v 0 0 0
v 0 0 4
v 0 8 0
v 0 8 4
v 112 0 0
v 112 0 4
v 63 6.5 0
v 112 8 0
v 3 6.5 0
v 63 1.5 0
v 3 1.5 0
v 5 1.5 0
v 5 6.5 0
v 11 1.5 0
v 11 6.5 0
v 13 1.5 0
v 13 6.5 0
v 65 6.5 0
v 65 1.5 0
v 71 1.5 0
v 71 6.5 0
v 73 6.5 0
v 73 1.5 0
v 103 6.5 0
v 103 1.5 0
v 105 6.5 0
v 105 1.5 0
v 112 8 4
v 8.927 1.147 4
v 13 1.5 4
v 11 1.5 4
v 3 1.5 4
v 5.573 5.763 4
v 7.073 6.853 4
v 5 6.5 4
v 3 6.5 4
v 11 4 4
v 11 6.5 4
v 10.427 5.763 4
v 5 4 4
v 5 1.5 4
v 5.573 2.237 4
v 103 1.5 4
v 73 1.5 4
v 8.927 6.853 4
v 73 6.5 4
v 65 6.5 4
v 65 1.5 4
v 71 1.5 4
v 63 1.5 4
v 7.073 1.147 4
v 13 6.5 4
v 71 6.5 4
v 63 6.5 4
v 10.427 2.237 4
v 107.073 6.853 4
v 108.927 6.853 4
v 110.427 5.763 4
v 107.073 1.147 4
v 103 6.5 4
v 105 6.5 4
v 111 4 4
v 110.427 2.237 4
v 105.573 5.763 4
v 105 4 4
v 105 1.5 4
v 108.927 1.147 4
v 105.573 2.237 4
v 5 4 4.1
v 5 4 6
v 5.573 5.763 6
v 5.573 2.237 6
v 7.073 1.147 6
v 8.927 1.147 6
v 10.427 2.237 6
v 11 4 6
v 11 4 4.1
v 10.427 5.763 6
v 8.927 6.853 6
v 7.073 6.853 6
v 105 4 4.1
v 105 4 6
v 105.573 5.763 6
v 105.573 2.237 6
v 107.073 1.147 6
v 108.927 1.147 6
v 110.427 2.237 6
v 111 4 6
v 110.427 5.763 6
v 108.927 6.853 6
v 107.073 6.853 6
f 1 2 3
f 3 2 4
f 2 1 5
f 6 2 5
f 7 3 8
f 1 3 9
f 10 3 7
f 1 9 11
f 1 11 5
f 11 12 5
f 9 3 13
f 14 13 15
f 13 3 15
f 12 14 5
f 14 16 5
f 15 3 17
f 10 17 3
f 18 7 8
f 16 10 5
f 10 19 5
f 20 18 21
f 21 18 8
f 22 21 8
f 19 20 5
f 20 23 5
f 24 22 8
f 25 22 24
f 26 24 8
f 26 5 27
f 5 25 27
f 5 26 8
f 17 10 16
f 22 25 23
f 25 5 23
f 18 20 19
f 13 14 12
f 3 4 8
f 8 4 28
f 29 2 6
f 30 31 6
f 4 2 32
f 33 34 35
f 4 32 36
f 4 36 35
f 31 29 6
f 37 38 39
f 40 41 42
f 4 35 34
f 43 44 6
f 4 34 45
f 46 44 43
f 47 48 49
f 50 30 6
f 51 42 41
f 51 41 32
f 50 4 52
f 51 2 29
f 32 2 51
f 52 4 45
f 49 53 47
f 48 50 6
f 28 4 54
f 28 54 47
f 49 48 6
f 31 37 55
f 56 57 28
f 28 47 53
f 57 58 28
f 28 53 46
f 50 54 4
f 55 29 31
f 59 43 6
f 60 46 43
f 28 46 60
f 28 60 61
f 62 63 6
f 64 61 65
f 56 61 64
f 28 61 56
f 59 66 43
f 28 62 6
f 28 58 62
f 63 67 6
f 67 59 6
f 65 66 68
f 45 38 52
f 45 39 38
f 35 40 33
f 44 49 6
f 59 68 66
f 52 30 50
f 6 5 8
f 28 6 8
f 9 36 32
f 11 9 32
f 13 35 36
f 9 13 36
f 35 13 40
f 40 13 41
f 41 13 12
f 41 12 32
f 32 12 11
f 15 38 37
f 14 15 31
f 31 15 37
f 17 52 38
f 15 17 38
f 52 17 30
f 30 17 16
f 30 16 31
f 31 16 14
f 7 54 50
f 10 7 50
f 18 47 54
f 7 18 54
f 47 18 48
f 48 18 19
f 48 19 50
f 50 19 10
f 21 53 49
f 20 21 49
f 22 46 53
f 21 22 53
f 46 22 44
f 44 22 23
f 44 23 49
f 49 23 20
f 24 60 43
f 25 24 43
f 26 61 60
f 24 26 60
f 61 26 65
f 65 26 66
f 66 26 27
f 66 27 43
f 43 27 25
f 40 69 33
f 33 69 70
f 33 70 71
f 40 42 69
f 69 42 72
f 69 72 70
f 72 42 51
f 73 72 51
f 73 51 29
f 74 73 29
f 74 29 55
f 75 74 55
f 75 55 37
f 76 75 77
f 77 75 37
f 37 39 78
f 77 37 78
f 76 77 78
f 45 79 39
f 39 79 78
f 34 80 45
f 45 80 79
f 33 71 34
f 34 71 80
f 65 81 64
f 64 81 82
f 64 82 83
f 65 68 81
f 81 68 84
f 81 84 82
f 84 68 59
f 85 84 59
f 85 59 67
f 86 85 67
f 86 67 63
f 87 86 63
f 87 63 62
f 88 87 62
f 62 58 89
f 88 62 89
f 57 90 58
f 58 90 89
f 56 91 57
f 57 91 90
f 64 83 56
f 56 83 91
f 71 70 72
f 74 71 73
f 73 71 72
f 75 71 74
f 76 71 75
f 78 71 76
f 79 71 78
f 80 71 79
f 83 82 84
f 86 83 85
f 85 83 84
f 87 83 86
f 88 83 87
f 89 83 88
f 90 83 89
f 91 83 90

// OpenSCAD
width = 8;
height = 4;
tol=0.1;

rod_distance = 60;
hole_distance = 92;

// dimensions of ziptie hole
ziptie_x = 2;
ziptie_y = 5;

difference(){
  union(){
    cube([hole_distance+8+8+4,width,height]);
    bump();
    translate([hole_distance+8,0,0]) bump();
  }

  ziptiehole();
  translate([8,0,0])ziptiehole();

  translate([rod_distance,0,0]) {
    ziptiehole();
    translate([8,0,0])ziptiehole();
  }

  translate([hole_distance+8,0,0]) {
    ziptiehole();
   }

}

module ziptiehole(){
  translate([3,(width-ziptie_y)/2,-tol]) #cube([ziptie_x,ziptie_y,height+2*tol]);
}
module bump(){ 
translate([3+width/2-1+ziptie_x,width/2,height]) cylinder(r=width/2-1,h=2);

}
